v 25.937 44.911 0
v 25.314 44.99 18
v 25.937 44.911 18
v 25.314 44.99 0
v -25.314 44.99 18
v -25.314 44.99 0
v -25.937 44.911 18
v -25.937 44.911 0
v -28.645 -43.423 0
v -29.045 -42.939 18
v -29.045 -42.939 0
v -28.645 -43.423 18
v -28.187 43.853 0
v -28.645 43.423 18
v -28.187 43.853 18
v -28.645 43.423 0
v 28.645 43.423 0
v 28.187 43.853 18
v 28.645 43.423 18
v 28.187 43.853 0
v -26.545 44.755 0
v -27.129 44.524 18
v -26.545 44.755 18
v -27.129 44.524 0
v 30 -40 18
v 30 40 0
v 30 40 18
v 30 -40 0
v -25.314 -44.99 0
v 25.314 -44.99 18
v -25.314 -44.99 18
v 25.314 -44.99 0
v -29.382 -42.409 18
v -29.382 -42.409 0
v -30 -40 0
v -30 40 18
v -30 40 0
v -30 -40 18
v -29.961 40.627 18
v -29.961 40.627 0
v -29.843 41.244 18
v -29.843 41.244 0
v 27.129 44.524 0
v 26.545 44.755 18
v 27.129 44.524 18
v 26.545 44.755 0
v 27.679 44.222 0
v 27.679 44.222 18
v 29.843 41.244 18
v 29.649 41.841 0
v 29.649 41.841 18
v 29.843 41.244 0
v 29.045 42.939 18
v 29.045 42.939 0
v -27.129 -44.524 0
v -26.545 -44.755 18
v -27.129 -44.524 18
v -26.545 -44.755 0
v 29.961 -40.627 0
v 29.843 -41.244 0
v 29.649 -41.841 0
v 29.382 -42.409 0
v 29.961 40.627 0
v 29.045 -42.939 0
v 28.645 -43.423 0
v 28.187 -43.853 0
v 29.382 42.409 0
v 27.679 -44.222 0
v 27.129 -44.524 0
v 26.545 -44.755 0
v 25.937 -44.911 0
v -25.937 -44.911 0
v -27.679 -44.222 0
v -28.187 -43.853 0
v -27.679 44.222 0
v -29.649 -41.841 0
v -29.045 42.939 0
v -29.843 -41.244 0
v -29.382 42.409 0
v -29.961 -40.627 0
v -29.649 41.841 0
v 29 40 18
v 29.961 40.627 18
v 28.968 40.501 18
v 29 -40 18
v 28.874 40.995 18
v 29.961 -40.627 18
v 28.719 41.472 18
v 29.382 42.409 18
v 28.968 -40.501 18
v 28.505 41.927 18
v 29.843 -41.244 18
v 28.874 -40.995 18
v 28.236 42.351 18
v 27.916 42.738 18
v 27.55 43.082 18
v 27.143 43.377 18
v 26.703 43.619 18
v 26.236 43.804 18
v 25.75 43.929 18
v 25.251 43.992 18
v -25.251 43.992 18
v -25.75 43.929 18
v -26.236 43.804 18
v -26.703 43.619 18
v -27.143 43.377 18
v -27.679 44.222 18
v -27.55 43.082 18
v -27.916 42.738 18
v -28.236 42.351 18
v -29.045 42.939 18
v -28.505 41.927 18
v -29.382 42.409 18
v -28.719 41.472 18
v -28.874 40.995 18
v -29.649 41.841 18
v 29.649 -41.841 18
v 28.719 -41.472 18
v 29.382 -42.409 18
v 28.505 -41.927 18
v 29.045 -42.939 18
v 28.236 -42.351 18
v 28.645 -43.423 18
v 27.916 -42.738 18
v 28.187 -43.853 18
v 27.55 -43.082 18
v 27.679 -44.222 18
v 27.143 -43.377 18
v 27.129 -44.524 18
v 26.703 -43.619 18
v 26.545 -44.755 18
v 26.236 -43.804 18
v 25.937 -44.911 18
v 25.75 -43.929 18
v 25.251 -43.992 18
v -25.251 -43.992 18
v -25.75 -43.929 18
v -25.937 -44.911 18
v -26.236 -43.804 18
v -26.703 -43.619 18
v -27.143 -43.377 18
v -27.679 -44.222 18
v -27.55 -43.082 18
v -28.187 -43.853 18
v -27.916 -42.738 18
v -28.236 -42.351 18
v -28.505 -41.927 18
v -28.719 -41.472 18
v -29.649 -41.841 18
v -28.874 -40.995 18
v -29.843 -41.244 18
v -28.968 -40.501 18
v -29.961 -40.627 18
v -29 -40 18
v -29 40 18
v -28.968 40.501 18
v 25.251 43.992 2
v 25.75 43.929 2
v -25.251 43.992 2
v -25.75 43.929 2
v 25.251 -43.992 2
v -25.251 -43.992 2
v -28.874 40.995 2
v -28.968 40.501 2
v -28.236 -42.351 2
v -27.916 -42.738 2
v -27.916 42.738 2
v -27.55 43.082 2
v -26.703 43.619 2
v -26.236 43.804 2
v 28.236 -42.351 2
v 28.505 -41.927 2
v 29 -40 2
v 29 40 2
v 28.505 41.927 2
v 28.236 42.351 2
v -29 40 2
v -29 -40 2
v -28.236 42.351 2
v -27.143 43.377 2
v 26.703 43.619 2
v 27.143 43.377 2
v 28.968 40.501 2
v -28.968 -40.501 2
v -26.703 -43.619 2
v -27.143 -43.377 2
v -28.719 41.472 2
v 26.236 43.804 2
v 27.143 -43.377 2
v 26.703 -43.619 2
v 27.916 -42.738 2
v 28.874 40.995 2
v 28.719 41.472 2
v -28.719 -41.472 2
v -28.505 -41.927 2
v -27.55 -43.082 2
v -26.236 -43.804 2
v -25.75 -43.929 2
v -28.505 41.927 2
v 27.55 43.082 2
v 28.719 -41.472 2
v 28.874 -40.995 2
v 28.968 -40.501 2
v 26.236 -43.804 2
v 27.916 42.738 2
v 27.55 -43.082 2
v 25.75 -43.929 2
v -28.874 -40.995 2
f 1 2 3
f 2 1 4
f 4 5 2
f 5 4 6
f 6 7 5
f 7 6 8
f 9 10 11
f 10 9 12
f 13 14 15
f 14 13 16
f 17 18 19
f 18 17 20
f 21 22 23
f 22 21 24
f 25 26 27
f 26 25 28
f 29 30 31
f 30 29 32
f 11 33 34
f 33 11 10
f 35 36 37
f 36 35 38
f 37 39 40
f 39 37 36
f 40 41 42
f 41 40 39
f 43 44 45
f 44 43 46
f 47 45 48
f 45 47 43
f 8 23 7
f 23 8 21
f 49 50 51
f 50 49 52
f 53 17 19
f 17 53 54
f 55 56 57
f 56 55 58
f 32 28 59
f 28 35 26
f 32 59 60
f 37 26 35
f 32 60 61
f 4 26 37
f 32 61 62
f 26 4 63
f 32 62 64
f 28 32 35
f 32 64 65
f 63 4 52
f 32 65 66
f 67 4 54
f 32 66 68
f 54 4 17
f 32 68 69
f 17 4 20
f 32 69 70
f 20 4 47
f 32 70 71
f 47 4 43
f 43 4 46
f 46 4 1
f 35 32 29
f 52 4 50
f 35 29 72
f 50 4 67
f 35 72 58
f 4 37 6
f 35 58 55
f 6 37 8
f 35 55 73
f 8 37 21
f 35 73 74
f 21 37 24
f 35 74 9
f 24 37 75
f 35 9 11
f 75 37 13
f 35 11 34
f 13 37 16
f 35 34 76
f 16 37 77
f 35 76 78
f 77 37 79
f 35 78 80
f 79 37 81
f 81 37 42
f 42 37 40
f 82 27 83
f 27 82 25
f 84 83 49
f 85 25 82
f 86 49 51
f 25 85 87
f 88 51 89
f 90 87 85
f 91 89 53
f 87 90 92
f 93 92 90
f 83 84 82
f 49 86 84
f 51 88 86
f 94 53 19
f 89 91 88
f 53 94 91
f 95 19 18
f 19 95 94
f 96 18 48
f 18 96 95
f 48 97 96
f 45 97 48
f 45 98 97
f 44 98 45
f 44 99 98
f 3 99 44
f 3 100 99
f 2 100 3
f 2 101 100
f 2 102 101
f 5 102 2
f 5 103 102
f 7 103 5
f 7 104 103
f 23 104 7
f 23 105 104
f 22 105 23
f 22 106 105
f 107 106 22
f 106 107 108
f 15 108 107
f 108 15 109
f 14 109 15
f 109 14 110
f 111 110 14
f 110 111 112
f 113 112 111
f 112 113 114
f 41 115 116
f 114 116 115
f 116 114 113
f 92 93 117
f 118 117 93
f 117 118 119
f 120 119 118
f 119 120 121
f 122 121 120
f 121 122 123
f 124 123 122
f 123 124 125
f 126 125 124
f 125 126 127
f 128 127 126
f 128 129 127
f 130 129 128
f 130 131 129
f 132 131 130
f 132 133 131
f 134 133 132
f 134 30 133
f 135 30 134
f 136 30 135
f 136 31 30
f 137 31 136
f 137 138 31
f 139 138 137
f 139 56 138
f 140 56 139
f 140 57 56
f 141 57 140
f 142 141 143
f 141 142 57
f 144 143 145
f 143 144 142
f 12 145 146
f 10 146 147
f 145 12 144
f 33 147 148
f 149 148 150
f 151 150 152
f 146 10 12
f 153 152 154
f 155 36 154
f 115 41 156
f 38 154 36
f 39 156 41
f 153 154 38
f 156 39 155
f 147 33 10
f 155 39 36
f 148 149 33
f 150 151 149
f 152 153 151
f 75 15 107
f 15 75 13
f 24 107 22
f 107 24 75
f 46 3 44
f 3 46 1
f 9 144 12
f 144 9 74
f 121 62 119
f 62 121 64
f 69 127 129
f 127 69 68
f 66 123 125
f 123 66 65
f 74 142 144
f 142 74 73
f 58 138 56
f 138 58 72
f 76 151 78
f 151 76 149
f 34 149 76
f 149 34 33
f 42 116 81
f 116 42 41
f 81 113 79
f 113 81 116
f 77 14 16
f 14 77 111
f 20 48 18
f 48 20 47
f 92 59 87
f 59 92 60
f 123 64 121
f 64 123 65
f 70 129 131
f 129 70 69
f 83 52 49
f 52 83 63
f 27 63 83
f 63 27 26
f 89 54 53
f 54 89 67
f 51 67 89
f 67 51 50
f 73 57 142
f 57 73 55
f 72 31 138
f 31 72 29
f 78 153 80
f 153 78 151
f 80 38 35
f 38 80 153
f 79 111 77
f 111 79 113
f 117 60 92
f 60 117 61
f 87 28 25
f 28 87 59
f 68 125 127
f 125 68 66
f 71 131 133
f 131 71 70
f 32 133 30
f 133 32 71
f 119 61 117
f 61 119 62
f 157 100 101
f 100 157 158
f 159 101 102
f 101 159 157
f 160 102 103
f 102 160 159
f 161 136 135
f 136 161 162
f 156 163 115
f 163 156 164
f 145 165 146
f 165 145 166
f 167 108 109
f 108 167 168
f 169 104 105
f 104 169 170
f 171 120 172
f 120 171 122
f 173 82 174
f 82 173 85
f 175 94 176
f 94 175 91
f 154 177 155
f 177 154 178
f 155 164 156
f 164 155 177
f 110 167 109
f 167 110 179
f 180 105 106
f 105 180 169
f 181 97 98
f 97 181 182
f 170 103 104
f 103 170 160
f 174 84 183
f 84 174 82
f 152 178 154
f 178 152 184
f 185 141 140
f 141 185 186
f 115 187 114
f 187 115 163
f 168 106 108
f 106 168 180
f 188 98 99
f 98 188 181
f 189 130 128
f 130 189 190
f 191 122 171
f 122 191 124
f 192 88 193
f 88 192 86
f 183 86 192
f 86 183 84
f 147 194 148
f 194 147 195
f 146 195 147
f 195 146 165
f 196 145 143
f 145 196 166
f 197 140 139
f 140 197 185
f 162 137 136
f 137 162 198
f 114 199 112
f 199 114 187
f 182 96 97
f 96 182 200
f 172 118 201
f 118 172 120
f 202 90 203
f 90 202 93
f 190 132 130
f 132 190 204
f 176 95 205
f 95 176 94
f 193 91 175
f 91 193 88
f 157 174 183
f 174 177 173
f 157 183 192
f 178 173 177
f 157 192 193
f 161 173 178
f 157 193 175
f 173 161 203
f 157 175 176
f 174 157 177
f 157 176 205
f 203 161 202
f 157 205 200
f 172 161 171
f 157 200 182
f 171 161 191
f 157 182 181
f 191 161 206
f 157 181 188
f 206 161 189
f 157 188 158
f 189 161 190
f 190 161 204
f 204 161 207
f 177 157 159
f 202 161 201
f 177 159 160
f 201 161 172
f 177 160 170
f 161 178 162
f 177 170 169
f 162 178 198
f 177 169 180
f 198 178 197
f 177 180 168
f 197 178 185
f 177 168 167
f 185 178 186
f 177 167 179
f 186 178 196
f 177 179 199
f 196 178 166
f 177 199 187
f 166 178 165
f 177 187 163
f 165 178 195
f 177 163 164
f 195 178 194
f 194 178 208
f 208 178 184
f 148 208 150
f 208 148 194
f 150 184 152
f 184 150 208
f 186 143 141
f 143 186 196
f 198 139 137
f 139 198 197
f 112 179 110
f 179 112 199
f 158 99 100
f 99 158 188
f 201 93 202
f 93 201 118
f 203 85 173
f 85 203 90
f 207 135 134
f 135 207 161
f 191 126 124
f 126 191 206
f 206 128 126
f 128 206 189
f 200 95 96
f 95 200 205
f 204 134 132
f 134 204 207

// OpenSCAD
$fn = 50;


difference() {
	union() {
		hull() {
			translate(v = [-25.0000000000, 40.0000000000, 0]) {
				cylinder(h = 18, r = 5);
			}
			translate(v = [25.0000000000, 40.0000000000, 0]) {
				cylinder(h = 18, r = 5);
			}
			translate(v = [-25.0000000000, -40.0000000000, 0]) {
				cylinder(h = 18, r = 5);
			}
			translate(v = [25.0000000000, -40.0000000000, 0]) {
				cylinder(h = 18, r = 5);
			}
		}
	}
	union() {
		translate(v = [0, 0, 2]) {
			hull() {
				translate(v = [-25.0000000000, 40.0000000000, 0]) {
					cylinder(h = 16, r = 4);
				}
				translate(v = [25.0000000000, 40.0000000000, 0]) {
					cylinder(h = 16, r = 4);
				}
				translate(v = [-25.0000000000, -40.0000000000, 0]) {
					cylinder(h = 16, r = 4);
				}
				translate(v = [25.0000000000, -40.0000000000, 0]) {
					cylinder(h = 16, r = 4);
				}
			}
		}
	}
}
